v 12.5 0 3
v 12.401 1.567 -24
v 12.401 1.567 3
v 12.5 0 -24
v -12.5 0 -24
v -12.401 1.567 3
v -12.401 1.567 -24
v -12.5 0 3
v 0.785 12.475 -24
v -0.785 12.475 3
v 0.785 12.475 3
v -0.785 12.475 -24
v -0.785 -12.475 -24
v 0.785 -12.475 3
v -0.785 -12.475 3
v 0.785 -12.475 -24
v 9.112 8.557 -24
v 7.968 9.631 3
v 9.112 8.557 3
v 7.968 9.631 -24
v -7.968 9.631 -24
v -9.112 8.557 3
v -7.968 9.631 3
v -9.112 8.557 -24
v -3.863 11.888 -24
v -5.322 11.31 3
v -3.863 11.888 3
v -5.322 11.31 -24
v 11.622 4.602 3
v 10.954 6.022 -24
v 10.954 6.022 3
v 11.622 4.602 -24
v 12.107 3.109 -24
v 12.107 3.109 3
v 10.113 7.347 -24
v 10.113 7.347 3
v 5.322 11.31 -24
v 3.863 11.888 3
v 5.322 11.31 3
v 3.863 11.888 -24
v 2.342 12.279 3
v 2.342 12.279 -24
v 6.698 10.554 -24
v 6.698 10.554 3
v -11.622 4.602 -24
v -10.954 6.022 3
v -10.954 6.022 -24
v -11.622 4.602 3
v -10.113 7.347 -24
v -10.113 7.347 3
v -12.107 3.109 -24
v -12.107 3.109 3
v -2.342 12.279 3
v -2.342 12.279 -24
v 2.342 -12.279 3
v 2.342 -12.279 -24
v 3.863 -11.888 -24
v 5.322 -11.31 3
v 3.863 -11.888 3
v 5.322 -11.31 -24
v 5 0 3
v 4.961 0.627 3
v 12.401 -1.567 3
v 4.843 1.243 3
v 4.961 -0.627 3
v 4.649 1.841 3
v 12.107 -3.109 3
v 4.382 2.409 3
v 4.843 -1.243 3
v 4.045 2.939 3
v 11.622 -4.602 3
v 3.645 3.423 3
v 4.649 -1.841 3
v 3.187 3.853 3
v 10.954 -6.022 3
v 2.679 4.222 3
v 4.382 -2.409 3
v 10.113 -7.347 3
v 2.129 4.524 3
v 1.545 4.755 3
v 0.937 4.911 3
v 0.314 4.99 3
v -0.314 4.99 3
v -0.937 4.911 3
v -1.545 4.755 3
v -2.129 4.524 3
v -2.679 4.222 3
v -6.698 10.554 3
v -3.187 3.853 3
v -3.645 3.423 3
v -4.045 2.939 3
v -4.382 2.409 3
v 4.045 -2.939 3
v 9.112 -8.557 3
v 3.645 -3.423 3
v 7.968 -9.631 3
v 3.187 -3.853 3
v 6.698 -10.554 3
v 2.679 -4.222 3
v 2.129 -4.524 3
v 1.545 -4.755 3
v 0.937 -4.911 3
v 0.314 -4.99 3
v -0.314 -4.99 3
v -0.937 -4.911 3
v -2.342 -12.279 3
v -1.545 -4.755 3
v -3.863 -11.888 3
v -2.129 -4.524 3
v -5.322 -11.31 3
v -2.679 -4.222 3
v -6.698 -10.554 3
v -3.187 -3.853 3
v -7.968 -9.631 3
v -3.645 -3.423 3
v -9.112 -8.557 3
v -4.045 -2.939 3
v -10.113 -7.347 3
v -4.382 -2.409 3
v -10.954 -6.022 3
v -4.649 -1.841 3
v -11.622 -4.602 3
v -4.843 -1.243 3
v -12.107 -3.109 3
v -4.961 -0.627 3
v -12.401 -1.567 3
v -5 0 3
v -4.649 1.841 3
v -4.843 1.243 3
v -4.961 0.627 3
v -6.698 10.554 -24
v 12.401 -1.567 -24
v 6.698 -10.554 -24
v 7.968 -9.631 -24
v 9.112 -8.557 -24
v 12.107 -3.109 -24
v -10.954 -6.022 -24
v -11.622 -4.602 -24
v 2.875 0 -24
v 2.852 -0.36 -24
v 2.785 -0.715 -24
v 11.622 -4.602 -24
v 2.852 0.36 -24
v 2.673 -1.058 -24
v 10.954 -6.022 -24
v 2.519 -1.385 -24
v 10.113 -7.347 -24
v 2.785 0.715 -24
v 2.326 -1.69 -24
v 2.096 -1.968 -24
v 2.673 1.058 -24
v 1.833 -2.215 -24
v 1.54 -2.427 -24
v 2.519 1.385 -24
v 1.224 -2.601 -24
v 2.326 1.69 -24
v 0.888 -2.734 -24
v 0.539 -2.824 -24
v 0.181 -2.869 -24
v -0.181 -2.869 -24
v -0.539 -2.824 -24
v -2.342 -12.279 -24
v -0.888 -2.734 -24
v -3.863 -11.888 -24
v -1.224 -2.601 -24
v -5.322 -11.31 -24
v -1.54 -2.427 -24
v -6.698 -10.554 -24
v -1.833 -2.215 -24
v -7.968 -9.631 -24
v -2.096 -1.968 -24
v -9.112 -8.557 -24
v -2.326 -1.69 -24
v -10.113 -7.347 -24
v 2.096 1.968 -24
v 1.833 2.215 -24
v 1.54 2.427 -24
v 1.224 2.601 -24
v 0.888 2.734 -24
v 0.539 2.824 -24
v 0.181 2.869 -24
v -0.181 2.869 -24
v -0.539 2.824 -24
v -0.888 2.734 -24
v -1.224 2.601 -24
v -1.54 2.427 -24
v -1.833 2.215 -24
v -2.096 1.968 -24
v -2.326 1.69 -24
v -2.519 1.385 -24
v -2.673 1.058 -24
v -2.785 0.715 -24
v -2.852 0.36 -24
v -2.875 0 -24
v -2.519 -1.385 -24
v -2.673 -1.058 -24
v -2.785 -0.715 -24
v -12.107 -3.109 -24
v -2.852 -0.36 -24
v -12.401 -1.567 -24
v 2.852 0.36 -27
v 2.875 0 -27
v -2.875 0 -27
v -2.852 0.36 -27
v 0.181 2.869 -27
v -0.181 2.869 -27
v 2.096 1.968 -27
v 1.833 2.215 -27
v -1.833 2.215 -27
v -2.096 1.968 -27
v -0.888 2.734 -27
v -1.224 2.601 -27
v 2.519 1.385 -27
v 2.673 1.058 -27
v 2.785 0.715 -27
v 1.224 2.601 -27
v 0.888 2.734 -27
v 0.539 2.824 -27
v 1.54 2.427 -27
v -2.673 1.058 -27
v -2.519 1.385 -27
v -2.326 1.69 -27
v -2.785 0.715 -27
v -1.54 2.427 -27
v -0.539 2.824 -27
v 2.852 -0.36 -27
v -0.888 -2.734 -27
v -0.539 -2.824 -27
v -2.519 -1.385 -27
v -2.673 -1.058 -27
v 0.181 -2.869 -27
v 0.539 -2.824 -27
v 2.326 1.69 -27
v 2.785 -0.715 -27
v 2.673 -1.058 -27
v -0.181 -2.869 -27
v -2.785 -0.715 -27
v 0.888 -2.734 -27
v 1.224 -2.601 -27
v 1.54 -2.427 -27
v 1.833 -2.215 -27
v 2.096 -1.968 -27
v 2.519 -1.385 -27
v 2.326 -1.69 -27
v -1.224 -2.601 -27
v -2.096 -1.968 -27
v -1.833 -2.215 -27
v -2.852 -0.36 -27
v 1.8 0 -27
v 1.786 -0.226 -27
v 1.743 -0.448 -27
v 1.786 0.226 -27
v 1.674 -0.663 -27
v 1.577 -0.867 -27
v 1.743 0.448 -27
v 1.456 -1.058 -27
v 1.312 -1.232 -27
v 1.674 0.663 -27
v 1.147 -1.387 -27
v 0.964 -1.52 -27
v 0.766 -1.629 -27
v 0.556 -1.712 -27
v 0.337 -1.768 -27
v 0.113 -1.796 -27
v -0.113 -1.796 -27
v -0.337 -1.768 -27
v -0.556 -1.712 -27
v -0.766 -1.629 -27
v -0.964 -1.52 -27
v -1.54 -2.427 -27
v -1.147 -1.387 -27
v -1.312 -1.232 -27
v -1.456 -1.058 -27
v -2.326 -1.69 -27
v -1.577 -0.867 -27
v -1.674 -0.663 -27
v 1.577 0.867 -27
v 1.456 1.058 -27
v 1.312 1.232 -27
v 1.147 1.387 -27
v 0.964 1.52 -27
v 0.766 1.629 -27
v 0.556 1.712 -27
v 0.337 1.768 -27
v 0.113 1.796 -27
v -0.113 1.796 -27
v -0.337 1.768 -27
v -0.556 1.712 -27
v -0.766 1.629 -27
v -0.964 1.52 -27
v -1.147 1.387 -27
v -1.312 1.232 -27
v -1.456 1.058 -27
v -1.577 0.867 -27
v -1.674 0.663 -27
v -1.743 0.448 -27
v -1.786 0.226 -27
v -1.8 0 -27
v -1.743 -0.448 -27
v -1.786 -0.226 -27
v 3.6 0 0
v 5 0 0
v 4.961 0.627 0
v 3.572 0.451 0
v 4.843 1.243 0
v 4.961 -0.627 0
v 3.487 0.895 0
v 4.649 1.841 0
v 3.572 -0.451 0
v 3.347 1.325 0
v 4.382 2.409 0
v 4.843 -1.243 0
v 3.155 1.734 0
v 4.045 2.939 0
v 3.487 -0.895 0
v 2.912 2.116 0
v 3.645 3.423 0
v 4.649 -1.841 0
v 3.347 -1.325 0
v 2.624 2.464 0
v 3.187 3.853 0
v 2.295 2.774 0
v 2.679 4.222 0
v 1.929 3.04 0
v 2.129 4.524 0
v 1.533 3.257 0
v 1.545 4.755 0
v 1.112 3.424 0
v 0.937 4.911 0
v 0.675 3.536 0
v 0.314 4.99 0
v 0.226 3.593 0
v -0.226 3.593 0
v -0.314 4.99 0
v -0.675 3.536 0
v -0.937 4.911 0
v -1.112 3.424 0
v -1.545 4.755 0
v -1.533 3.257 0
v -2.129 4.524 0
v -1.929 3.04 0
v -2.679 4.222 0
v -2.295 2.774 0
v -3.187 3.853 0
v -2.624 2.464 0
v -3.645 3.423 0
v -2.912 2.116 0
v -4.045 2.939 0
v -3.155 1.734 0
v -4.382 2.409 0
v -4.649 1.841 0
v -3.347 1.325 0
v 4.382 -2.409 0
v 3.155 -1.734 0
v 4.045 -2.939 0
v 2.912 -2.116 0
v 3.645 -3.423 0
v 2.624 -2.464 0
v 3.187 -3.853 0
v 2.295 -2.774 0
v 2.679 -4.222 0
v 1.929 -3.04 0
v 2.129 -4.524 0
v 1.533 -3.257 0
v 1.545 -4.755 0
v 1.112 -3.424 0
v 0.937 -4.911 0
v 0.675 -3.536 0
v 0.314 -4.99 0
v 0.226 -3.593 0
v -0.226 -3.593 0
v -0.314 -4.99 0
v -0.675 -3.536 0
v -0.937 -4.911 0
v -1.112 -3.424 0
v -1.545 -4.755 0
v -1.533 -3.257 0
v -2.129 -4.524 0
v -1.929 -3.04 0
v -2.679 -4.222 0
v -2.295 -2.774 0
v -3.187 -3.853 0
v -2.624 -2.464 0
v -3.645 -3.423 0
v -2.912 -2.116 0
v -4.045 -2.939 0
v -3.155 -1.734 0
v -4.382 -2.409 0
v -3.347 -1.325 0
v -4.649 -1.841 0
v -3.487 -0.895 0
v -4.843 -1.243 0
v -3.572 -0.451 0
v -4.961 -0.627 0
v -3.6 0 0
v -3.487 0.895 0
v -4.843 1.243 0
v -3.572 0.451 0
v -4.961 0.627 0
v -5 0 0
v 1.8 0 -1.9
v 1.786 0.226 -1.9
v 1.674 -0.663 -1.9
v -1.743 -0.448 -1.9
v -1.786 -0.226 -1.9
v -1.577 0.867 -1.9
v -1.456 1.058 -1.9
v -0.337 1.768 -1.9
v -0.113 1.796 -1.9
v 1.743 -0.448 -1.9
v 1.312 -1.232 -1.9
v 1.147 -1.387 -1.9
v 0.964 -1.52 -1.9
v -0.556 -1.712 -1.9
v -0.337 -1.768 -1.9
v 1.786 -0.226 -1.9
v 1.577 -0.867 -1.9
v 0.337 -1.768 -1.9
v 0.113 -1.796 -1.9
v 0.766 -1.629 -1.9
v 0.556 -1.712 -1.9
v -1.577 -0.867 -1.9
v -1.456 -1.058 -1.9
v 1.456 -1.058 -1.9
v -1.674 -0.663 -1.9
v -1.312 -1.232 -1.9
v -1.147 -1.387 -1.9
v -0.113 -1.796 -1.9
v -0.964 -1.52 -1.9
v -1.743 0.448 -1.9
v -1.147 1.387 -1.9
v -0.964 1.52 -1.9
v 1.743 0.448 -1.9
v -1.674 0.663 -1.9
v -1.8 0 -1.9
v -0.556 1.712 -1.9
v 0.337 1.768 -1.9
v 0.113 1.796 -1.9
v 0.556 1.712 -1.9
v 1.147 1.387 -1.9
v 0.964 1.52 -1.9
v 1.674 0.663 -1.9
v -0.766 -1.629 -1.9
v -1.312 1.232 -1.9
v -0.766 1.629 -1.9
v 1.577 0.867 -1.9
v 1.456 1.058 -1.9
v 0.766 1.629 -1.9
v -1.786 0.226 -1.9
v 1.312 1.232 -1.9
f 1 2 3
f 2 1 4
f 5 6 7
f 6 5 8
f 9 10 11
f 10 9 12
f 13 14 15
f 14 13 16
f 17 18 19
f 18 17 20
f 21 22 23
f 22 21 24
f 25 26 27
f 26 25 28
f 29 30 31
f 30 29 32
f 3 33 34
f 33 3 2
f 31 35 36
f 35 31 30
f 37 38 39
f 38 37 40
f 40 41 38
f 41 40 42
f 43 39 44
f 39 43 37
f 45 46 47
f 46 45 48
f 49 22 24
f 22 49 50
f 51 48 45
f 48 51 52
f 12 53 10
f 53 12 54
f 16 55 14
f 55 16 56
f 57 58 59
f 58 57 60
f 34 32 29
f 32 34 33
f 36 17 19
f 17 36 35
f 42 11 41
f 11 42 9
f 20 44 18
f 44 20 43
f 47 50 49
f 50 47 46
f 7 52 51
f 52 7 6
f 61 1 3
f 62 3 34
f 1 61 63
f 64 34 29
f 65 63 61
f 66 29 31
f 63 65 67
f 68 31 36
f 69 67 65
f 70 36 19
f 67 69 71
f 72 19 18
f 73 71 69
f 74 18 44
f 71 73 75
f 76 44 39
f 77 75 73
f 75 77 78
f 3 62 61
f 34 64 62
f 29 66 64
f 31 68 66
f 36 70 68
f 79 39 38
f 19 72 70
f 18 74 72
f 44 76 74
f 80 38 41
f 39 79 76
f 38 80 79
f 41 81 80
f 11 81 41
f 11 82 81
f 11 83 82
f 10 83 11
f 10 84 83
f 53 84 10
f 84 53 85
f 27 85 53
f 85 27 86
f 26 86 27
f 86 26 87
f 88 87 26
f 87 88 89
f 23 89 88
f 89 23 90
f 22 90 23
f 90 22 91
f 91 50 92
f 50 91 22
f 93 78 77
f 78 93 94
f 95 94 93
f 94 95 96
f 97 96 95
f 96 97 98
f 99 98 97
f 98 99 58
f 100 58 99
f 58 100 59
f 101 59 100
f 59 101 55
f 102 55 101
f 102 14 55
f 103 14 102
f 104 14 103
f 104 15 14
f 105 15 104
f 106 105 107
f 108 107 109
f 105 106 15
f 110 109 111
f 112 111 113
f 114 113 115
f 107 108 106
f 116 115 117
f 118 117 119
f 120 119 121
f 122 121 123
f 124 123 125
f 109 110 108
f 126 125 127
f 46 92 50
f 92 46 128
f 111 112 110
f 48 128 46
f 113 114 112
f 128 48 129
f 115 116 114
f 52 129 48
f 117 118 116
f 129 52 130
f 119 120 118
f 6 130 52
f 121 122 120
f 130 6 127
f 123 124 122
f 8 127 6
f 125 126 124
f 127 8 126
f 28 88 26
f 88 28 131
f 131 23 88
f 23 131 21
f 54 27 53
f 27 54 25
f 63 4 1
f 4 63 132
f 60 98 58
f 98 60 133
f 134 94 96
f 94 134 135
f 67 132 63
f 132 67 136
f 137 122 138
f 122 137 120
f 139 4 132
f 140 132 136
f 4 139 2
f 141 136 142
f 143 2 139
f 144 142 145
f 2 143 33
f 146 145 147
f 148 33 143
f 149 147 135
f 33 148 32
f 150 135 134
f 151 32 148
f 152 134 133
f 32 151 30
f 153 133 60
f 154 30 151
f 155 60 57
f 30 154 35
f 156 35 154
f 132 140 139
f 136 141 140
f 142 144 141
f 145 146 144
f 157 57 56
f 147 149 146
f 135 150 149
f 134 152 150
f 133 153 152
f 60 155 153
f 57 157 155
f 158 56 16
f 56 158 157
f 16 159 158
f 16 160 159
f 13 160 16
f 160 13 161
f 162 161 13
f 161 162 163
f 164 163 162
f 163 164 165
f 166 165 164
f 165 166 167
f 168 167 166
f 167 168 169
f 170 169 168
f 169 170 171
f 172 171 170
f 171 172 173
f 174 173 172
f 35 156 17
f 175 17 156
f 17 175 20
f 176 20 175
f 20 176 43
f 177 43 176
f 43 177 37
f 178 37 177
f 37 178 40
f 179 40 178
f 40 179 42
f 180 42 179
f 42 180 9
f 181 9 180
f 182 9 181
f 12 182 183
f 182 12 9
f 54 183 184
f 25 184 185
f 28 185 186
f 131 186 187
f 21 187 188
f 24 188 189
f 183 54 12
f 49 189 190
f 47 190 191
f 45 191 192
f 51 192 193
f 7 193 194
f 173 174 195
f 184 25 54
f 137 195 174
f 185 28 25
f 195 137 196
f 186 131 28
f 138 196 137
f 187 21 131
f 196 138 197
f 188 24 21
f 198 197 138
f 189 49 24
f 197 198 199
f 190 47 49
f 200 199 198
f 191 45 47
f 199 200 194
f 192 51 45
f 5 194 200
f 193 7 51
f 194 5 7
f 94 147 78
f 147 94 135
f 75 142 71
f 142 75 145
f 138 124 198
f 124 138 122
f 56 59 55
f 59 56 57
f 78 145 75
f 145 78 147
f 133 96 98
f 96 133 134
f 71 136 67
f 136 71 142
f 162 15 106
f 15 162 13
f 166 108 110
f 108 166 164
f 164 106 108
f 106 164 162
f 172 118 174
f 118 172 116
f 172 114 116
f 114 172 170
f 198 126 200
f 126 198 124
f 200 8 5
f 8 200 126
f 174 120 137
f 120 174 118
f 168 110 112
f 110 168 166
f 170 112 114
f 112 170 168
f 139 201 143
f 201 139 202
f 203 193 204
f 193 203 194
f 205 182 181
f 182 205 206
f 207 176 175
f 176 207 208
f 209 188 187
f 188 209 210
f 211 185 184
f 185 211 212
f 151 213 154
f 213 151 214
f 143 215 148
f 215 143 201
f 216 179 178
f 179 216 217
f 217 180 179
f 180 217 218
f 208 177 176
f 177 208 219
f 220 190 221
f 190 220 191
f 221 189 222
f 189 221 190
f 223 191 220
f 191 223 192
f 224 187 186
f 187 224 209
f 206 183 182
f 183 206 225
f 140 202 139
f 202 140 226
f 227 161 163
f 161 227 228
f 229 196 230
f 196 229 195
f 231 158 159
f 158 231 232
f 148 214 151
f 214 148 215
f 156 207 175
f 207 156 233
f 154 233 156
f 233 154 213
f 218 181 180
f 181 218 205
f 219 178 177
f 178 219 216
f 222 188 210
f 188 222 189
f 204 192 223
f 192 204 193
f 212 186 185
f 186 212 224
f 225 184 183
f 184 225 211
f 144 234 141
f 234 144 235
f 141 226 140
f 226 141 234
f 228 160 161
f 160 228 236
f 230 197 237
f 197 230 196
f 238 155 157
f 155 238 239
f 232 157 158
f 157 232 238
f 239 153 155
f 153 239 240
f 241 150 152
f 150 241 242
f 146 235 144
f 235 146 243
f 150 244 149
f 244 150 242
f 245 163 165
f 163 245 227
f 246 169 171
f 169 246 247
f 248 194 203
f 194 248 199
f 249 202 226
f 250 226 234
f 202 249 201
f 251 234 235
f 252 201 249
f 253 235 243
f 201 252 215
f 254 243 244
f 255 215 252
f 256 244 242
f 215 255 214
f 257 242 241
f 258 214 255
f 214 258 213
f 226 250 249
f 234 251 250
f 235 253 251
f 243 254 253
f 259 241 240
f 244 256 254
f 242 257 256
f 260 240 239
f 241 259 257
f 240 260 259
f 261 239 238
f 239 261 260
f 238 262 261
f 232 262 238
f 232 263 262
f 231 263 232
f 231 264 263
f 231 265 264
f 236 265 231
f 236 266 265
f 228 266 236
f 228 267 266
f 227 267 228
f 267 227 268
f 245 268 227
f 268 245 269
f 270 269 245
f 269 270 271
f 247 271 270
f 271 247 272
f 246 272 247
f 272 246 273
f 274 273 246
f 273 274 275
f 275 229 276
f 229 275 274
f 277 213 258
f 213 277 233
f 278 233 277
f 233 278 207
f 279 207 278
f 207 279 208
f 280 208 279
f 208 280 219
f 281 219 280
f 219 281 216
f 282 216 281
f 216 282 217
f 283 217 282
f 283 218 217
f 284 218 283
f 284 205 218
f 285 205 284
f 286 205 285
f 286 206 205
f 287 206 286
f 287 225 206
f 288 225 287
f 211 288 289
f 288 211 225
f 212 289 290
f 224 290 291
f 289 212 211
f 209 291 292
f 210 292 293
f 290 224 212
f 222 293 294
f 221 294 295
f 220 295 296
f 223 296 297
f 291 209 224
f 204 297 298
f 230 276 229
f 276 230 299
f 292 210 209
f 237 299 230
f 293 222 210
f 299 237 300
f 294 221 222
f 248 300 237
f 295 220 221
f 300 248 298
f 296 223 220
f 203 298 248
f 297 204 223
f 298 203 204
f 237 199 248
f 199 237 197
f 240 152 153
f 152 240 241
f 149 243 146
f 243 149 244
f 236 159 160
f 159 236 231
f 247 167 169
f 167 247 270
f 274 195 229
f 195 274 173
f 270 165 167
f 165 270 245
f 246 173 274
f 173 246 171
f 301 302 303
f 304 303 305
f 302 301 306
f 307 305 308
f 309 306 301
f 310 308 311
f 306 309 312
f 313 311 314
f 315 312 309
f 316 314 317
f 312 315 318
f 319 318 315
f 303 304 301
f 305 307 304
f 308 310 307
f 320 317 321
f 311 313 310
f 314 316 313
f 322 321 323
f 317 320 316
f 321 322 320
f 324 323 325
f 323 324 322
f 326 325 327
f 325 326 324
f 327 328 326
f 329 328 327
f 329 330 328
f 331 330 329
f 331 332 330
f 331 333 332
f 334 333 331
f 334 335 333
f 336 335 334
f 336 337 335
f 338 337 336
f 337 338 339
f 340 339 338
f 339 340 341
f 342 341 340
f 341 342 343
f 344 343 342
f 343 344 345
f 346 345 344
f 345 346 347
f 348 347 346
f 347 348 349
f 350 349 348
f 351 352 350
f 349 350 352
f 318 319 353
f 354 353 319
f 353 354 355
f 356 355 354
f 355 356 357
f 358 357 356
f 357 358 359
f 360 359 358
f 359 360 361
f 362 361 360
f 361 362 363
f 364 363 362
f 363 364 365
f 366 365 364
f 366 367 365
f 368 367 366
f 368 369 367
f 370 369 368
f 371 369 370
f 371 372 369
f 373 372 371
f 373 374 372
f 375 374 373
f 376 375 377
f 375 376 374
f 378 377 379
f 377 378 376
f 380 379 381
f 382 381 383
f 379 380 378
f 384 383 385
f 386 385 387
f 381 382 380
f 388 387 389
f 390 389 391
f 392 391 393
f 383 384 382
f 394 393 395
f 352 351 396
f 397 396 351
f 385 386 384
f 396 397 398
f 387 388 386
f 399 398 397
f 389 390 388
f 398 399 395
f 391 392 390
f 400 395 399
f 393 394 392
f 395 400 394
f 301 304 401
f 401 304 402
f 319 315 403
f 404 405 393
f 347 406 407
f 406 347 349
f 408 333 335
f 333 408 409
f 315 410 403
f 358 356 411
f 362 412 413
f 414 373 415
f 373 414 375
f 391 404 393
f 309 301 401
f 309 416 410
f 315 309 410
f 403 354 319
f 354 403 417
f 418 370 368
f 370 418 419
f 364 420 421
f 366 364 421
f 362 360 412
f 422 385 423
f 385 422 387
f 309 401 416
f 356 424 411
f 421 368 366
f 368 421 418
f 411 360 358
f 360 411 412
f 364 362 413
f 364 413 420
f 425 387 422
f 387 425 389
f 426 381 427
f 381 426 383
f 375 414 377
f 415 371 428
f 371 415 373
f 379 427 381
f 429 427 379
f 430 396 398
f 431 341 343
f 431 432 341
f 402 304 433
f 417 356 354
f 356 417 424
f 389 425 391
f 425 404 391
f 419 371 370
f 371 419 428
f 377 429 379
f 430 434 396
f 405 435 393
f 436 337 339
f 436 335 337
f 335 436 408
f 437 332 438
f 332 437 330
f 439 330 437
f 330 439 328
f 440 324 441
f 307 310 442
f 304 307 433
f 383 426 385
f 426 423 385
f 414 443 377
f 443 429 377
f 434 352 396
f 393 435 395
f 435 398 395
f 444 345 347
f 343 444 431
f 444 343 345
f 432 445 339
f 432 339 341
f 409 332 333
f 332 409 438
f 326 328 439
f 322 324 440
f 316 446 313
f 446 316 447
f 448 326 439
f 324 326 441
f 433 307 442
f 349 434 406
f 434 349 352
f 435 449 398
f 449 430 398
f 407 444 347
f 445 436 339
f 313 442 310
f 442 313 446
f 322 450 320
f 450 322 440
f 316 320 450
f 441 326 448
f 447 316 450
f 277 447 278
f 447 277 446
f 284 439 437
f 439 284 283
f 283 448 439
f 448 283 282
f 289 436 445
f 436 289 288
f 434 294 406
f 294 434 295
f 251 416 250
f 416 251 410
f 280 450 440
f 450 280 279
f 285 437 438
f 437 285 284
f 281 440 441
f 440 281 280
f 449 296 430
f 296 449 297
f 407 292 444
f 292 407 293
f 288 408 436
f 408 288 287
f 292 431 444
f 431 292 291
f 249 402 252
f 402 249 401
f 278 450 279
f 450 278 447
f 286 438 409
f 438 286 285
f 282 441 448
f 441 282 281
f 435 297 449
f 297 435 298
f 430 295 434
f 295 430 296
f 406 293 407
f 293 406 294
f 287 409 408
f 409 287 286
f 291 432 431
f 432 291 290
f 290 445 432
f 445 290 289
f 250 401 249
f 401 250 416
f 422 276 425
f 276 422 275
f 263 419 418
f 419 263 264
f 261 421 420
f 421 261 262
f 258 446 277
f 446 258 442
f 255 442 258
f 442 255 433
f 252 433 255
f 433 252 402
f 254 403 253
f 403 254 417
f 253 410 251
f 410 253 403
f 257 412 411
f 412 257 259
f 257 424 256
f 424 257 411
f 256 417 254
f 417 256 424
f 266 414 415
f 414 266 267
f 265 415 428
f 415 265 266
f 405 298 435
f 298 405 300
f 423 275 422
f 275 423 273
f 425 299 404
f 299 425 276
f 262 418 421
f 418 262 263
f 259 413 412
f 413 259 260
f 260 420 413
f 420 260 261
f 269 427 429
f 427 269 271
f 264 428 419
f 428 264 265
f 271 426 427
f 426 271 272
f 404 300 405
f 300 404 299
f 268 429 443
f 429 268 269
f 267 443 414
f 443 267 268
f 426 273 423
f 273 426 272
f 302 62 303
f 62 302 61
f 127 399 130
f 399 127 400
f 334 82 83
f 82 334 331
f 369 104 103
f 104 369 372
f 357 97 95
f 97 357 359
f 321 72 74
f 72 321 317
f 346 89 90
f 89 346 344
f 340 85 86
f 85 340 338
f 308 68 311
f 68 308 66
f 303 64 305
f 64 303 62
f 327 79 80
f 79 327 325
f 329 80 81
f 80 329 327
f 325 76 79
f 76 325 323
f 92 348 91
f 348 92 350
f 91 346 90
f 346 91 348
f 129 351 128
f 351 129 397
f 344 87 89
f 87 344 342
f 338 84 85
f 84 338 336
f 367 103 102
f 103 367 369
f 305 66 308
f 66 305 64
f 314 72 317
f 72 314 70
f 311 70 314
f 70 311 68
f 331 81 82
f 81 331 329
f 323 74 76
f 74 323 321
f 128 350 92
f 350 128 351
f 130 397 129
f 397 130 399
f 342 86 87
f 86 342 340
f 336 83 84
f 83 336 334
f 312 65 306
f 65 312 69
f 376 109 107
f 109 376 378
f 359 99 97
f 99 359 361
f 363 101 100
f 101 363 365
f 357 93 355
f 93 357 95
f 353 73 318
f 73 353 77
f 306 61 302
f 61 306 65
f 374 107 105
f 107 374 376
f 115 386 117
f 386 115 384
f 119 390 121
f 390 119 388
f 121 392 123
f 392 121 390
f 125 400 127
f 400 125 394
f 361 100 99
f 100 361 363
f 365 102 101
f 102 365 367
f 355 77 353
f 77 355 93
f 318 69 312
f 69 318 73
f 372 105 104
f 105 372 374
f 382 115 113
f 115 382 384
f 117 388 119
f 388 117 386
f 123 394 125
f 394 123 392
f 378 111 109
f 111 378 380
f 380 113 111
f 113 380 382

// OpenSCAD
$fn = 50;

difference() {
	union() {
		translate(v = [0, 0, -24.0]) {
			cylinder(h = 27, r = 12.5);
		}
		#translate(v = [0, 0, -27.0]) {
			cylinder(h = 27, r = 2.875);
		}
	}
	union() {
		translate(v = [0, 0, 0]) {
			rotate(a = [0, 0, 0]) {
				difference() {
					union() {
						translate(v = [0, 0, -27.0]) {
							cylinder(h = 27, r = 1.5);
						}
						translate(v = [0, 0, -1.9]) {
							cylinder(h = 1.9, r1 = 1.8, r2 = 3.6);
						}
						translate(v = [0, 0, -27.0]) {
							cylinder(h = 27, r = 1.8);
						}
						translate(v = [0, 0, -27.0]) {
							cylinder(h = 27, r = 1.5);
						}
					}
					union();
				}
			}
		}
		#cylinder(h = 3, r = 5.0);
	}
}
